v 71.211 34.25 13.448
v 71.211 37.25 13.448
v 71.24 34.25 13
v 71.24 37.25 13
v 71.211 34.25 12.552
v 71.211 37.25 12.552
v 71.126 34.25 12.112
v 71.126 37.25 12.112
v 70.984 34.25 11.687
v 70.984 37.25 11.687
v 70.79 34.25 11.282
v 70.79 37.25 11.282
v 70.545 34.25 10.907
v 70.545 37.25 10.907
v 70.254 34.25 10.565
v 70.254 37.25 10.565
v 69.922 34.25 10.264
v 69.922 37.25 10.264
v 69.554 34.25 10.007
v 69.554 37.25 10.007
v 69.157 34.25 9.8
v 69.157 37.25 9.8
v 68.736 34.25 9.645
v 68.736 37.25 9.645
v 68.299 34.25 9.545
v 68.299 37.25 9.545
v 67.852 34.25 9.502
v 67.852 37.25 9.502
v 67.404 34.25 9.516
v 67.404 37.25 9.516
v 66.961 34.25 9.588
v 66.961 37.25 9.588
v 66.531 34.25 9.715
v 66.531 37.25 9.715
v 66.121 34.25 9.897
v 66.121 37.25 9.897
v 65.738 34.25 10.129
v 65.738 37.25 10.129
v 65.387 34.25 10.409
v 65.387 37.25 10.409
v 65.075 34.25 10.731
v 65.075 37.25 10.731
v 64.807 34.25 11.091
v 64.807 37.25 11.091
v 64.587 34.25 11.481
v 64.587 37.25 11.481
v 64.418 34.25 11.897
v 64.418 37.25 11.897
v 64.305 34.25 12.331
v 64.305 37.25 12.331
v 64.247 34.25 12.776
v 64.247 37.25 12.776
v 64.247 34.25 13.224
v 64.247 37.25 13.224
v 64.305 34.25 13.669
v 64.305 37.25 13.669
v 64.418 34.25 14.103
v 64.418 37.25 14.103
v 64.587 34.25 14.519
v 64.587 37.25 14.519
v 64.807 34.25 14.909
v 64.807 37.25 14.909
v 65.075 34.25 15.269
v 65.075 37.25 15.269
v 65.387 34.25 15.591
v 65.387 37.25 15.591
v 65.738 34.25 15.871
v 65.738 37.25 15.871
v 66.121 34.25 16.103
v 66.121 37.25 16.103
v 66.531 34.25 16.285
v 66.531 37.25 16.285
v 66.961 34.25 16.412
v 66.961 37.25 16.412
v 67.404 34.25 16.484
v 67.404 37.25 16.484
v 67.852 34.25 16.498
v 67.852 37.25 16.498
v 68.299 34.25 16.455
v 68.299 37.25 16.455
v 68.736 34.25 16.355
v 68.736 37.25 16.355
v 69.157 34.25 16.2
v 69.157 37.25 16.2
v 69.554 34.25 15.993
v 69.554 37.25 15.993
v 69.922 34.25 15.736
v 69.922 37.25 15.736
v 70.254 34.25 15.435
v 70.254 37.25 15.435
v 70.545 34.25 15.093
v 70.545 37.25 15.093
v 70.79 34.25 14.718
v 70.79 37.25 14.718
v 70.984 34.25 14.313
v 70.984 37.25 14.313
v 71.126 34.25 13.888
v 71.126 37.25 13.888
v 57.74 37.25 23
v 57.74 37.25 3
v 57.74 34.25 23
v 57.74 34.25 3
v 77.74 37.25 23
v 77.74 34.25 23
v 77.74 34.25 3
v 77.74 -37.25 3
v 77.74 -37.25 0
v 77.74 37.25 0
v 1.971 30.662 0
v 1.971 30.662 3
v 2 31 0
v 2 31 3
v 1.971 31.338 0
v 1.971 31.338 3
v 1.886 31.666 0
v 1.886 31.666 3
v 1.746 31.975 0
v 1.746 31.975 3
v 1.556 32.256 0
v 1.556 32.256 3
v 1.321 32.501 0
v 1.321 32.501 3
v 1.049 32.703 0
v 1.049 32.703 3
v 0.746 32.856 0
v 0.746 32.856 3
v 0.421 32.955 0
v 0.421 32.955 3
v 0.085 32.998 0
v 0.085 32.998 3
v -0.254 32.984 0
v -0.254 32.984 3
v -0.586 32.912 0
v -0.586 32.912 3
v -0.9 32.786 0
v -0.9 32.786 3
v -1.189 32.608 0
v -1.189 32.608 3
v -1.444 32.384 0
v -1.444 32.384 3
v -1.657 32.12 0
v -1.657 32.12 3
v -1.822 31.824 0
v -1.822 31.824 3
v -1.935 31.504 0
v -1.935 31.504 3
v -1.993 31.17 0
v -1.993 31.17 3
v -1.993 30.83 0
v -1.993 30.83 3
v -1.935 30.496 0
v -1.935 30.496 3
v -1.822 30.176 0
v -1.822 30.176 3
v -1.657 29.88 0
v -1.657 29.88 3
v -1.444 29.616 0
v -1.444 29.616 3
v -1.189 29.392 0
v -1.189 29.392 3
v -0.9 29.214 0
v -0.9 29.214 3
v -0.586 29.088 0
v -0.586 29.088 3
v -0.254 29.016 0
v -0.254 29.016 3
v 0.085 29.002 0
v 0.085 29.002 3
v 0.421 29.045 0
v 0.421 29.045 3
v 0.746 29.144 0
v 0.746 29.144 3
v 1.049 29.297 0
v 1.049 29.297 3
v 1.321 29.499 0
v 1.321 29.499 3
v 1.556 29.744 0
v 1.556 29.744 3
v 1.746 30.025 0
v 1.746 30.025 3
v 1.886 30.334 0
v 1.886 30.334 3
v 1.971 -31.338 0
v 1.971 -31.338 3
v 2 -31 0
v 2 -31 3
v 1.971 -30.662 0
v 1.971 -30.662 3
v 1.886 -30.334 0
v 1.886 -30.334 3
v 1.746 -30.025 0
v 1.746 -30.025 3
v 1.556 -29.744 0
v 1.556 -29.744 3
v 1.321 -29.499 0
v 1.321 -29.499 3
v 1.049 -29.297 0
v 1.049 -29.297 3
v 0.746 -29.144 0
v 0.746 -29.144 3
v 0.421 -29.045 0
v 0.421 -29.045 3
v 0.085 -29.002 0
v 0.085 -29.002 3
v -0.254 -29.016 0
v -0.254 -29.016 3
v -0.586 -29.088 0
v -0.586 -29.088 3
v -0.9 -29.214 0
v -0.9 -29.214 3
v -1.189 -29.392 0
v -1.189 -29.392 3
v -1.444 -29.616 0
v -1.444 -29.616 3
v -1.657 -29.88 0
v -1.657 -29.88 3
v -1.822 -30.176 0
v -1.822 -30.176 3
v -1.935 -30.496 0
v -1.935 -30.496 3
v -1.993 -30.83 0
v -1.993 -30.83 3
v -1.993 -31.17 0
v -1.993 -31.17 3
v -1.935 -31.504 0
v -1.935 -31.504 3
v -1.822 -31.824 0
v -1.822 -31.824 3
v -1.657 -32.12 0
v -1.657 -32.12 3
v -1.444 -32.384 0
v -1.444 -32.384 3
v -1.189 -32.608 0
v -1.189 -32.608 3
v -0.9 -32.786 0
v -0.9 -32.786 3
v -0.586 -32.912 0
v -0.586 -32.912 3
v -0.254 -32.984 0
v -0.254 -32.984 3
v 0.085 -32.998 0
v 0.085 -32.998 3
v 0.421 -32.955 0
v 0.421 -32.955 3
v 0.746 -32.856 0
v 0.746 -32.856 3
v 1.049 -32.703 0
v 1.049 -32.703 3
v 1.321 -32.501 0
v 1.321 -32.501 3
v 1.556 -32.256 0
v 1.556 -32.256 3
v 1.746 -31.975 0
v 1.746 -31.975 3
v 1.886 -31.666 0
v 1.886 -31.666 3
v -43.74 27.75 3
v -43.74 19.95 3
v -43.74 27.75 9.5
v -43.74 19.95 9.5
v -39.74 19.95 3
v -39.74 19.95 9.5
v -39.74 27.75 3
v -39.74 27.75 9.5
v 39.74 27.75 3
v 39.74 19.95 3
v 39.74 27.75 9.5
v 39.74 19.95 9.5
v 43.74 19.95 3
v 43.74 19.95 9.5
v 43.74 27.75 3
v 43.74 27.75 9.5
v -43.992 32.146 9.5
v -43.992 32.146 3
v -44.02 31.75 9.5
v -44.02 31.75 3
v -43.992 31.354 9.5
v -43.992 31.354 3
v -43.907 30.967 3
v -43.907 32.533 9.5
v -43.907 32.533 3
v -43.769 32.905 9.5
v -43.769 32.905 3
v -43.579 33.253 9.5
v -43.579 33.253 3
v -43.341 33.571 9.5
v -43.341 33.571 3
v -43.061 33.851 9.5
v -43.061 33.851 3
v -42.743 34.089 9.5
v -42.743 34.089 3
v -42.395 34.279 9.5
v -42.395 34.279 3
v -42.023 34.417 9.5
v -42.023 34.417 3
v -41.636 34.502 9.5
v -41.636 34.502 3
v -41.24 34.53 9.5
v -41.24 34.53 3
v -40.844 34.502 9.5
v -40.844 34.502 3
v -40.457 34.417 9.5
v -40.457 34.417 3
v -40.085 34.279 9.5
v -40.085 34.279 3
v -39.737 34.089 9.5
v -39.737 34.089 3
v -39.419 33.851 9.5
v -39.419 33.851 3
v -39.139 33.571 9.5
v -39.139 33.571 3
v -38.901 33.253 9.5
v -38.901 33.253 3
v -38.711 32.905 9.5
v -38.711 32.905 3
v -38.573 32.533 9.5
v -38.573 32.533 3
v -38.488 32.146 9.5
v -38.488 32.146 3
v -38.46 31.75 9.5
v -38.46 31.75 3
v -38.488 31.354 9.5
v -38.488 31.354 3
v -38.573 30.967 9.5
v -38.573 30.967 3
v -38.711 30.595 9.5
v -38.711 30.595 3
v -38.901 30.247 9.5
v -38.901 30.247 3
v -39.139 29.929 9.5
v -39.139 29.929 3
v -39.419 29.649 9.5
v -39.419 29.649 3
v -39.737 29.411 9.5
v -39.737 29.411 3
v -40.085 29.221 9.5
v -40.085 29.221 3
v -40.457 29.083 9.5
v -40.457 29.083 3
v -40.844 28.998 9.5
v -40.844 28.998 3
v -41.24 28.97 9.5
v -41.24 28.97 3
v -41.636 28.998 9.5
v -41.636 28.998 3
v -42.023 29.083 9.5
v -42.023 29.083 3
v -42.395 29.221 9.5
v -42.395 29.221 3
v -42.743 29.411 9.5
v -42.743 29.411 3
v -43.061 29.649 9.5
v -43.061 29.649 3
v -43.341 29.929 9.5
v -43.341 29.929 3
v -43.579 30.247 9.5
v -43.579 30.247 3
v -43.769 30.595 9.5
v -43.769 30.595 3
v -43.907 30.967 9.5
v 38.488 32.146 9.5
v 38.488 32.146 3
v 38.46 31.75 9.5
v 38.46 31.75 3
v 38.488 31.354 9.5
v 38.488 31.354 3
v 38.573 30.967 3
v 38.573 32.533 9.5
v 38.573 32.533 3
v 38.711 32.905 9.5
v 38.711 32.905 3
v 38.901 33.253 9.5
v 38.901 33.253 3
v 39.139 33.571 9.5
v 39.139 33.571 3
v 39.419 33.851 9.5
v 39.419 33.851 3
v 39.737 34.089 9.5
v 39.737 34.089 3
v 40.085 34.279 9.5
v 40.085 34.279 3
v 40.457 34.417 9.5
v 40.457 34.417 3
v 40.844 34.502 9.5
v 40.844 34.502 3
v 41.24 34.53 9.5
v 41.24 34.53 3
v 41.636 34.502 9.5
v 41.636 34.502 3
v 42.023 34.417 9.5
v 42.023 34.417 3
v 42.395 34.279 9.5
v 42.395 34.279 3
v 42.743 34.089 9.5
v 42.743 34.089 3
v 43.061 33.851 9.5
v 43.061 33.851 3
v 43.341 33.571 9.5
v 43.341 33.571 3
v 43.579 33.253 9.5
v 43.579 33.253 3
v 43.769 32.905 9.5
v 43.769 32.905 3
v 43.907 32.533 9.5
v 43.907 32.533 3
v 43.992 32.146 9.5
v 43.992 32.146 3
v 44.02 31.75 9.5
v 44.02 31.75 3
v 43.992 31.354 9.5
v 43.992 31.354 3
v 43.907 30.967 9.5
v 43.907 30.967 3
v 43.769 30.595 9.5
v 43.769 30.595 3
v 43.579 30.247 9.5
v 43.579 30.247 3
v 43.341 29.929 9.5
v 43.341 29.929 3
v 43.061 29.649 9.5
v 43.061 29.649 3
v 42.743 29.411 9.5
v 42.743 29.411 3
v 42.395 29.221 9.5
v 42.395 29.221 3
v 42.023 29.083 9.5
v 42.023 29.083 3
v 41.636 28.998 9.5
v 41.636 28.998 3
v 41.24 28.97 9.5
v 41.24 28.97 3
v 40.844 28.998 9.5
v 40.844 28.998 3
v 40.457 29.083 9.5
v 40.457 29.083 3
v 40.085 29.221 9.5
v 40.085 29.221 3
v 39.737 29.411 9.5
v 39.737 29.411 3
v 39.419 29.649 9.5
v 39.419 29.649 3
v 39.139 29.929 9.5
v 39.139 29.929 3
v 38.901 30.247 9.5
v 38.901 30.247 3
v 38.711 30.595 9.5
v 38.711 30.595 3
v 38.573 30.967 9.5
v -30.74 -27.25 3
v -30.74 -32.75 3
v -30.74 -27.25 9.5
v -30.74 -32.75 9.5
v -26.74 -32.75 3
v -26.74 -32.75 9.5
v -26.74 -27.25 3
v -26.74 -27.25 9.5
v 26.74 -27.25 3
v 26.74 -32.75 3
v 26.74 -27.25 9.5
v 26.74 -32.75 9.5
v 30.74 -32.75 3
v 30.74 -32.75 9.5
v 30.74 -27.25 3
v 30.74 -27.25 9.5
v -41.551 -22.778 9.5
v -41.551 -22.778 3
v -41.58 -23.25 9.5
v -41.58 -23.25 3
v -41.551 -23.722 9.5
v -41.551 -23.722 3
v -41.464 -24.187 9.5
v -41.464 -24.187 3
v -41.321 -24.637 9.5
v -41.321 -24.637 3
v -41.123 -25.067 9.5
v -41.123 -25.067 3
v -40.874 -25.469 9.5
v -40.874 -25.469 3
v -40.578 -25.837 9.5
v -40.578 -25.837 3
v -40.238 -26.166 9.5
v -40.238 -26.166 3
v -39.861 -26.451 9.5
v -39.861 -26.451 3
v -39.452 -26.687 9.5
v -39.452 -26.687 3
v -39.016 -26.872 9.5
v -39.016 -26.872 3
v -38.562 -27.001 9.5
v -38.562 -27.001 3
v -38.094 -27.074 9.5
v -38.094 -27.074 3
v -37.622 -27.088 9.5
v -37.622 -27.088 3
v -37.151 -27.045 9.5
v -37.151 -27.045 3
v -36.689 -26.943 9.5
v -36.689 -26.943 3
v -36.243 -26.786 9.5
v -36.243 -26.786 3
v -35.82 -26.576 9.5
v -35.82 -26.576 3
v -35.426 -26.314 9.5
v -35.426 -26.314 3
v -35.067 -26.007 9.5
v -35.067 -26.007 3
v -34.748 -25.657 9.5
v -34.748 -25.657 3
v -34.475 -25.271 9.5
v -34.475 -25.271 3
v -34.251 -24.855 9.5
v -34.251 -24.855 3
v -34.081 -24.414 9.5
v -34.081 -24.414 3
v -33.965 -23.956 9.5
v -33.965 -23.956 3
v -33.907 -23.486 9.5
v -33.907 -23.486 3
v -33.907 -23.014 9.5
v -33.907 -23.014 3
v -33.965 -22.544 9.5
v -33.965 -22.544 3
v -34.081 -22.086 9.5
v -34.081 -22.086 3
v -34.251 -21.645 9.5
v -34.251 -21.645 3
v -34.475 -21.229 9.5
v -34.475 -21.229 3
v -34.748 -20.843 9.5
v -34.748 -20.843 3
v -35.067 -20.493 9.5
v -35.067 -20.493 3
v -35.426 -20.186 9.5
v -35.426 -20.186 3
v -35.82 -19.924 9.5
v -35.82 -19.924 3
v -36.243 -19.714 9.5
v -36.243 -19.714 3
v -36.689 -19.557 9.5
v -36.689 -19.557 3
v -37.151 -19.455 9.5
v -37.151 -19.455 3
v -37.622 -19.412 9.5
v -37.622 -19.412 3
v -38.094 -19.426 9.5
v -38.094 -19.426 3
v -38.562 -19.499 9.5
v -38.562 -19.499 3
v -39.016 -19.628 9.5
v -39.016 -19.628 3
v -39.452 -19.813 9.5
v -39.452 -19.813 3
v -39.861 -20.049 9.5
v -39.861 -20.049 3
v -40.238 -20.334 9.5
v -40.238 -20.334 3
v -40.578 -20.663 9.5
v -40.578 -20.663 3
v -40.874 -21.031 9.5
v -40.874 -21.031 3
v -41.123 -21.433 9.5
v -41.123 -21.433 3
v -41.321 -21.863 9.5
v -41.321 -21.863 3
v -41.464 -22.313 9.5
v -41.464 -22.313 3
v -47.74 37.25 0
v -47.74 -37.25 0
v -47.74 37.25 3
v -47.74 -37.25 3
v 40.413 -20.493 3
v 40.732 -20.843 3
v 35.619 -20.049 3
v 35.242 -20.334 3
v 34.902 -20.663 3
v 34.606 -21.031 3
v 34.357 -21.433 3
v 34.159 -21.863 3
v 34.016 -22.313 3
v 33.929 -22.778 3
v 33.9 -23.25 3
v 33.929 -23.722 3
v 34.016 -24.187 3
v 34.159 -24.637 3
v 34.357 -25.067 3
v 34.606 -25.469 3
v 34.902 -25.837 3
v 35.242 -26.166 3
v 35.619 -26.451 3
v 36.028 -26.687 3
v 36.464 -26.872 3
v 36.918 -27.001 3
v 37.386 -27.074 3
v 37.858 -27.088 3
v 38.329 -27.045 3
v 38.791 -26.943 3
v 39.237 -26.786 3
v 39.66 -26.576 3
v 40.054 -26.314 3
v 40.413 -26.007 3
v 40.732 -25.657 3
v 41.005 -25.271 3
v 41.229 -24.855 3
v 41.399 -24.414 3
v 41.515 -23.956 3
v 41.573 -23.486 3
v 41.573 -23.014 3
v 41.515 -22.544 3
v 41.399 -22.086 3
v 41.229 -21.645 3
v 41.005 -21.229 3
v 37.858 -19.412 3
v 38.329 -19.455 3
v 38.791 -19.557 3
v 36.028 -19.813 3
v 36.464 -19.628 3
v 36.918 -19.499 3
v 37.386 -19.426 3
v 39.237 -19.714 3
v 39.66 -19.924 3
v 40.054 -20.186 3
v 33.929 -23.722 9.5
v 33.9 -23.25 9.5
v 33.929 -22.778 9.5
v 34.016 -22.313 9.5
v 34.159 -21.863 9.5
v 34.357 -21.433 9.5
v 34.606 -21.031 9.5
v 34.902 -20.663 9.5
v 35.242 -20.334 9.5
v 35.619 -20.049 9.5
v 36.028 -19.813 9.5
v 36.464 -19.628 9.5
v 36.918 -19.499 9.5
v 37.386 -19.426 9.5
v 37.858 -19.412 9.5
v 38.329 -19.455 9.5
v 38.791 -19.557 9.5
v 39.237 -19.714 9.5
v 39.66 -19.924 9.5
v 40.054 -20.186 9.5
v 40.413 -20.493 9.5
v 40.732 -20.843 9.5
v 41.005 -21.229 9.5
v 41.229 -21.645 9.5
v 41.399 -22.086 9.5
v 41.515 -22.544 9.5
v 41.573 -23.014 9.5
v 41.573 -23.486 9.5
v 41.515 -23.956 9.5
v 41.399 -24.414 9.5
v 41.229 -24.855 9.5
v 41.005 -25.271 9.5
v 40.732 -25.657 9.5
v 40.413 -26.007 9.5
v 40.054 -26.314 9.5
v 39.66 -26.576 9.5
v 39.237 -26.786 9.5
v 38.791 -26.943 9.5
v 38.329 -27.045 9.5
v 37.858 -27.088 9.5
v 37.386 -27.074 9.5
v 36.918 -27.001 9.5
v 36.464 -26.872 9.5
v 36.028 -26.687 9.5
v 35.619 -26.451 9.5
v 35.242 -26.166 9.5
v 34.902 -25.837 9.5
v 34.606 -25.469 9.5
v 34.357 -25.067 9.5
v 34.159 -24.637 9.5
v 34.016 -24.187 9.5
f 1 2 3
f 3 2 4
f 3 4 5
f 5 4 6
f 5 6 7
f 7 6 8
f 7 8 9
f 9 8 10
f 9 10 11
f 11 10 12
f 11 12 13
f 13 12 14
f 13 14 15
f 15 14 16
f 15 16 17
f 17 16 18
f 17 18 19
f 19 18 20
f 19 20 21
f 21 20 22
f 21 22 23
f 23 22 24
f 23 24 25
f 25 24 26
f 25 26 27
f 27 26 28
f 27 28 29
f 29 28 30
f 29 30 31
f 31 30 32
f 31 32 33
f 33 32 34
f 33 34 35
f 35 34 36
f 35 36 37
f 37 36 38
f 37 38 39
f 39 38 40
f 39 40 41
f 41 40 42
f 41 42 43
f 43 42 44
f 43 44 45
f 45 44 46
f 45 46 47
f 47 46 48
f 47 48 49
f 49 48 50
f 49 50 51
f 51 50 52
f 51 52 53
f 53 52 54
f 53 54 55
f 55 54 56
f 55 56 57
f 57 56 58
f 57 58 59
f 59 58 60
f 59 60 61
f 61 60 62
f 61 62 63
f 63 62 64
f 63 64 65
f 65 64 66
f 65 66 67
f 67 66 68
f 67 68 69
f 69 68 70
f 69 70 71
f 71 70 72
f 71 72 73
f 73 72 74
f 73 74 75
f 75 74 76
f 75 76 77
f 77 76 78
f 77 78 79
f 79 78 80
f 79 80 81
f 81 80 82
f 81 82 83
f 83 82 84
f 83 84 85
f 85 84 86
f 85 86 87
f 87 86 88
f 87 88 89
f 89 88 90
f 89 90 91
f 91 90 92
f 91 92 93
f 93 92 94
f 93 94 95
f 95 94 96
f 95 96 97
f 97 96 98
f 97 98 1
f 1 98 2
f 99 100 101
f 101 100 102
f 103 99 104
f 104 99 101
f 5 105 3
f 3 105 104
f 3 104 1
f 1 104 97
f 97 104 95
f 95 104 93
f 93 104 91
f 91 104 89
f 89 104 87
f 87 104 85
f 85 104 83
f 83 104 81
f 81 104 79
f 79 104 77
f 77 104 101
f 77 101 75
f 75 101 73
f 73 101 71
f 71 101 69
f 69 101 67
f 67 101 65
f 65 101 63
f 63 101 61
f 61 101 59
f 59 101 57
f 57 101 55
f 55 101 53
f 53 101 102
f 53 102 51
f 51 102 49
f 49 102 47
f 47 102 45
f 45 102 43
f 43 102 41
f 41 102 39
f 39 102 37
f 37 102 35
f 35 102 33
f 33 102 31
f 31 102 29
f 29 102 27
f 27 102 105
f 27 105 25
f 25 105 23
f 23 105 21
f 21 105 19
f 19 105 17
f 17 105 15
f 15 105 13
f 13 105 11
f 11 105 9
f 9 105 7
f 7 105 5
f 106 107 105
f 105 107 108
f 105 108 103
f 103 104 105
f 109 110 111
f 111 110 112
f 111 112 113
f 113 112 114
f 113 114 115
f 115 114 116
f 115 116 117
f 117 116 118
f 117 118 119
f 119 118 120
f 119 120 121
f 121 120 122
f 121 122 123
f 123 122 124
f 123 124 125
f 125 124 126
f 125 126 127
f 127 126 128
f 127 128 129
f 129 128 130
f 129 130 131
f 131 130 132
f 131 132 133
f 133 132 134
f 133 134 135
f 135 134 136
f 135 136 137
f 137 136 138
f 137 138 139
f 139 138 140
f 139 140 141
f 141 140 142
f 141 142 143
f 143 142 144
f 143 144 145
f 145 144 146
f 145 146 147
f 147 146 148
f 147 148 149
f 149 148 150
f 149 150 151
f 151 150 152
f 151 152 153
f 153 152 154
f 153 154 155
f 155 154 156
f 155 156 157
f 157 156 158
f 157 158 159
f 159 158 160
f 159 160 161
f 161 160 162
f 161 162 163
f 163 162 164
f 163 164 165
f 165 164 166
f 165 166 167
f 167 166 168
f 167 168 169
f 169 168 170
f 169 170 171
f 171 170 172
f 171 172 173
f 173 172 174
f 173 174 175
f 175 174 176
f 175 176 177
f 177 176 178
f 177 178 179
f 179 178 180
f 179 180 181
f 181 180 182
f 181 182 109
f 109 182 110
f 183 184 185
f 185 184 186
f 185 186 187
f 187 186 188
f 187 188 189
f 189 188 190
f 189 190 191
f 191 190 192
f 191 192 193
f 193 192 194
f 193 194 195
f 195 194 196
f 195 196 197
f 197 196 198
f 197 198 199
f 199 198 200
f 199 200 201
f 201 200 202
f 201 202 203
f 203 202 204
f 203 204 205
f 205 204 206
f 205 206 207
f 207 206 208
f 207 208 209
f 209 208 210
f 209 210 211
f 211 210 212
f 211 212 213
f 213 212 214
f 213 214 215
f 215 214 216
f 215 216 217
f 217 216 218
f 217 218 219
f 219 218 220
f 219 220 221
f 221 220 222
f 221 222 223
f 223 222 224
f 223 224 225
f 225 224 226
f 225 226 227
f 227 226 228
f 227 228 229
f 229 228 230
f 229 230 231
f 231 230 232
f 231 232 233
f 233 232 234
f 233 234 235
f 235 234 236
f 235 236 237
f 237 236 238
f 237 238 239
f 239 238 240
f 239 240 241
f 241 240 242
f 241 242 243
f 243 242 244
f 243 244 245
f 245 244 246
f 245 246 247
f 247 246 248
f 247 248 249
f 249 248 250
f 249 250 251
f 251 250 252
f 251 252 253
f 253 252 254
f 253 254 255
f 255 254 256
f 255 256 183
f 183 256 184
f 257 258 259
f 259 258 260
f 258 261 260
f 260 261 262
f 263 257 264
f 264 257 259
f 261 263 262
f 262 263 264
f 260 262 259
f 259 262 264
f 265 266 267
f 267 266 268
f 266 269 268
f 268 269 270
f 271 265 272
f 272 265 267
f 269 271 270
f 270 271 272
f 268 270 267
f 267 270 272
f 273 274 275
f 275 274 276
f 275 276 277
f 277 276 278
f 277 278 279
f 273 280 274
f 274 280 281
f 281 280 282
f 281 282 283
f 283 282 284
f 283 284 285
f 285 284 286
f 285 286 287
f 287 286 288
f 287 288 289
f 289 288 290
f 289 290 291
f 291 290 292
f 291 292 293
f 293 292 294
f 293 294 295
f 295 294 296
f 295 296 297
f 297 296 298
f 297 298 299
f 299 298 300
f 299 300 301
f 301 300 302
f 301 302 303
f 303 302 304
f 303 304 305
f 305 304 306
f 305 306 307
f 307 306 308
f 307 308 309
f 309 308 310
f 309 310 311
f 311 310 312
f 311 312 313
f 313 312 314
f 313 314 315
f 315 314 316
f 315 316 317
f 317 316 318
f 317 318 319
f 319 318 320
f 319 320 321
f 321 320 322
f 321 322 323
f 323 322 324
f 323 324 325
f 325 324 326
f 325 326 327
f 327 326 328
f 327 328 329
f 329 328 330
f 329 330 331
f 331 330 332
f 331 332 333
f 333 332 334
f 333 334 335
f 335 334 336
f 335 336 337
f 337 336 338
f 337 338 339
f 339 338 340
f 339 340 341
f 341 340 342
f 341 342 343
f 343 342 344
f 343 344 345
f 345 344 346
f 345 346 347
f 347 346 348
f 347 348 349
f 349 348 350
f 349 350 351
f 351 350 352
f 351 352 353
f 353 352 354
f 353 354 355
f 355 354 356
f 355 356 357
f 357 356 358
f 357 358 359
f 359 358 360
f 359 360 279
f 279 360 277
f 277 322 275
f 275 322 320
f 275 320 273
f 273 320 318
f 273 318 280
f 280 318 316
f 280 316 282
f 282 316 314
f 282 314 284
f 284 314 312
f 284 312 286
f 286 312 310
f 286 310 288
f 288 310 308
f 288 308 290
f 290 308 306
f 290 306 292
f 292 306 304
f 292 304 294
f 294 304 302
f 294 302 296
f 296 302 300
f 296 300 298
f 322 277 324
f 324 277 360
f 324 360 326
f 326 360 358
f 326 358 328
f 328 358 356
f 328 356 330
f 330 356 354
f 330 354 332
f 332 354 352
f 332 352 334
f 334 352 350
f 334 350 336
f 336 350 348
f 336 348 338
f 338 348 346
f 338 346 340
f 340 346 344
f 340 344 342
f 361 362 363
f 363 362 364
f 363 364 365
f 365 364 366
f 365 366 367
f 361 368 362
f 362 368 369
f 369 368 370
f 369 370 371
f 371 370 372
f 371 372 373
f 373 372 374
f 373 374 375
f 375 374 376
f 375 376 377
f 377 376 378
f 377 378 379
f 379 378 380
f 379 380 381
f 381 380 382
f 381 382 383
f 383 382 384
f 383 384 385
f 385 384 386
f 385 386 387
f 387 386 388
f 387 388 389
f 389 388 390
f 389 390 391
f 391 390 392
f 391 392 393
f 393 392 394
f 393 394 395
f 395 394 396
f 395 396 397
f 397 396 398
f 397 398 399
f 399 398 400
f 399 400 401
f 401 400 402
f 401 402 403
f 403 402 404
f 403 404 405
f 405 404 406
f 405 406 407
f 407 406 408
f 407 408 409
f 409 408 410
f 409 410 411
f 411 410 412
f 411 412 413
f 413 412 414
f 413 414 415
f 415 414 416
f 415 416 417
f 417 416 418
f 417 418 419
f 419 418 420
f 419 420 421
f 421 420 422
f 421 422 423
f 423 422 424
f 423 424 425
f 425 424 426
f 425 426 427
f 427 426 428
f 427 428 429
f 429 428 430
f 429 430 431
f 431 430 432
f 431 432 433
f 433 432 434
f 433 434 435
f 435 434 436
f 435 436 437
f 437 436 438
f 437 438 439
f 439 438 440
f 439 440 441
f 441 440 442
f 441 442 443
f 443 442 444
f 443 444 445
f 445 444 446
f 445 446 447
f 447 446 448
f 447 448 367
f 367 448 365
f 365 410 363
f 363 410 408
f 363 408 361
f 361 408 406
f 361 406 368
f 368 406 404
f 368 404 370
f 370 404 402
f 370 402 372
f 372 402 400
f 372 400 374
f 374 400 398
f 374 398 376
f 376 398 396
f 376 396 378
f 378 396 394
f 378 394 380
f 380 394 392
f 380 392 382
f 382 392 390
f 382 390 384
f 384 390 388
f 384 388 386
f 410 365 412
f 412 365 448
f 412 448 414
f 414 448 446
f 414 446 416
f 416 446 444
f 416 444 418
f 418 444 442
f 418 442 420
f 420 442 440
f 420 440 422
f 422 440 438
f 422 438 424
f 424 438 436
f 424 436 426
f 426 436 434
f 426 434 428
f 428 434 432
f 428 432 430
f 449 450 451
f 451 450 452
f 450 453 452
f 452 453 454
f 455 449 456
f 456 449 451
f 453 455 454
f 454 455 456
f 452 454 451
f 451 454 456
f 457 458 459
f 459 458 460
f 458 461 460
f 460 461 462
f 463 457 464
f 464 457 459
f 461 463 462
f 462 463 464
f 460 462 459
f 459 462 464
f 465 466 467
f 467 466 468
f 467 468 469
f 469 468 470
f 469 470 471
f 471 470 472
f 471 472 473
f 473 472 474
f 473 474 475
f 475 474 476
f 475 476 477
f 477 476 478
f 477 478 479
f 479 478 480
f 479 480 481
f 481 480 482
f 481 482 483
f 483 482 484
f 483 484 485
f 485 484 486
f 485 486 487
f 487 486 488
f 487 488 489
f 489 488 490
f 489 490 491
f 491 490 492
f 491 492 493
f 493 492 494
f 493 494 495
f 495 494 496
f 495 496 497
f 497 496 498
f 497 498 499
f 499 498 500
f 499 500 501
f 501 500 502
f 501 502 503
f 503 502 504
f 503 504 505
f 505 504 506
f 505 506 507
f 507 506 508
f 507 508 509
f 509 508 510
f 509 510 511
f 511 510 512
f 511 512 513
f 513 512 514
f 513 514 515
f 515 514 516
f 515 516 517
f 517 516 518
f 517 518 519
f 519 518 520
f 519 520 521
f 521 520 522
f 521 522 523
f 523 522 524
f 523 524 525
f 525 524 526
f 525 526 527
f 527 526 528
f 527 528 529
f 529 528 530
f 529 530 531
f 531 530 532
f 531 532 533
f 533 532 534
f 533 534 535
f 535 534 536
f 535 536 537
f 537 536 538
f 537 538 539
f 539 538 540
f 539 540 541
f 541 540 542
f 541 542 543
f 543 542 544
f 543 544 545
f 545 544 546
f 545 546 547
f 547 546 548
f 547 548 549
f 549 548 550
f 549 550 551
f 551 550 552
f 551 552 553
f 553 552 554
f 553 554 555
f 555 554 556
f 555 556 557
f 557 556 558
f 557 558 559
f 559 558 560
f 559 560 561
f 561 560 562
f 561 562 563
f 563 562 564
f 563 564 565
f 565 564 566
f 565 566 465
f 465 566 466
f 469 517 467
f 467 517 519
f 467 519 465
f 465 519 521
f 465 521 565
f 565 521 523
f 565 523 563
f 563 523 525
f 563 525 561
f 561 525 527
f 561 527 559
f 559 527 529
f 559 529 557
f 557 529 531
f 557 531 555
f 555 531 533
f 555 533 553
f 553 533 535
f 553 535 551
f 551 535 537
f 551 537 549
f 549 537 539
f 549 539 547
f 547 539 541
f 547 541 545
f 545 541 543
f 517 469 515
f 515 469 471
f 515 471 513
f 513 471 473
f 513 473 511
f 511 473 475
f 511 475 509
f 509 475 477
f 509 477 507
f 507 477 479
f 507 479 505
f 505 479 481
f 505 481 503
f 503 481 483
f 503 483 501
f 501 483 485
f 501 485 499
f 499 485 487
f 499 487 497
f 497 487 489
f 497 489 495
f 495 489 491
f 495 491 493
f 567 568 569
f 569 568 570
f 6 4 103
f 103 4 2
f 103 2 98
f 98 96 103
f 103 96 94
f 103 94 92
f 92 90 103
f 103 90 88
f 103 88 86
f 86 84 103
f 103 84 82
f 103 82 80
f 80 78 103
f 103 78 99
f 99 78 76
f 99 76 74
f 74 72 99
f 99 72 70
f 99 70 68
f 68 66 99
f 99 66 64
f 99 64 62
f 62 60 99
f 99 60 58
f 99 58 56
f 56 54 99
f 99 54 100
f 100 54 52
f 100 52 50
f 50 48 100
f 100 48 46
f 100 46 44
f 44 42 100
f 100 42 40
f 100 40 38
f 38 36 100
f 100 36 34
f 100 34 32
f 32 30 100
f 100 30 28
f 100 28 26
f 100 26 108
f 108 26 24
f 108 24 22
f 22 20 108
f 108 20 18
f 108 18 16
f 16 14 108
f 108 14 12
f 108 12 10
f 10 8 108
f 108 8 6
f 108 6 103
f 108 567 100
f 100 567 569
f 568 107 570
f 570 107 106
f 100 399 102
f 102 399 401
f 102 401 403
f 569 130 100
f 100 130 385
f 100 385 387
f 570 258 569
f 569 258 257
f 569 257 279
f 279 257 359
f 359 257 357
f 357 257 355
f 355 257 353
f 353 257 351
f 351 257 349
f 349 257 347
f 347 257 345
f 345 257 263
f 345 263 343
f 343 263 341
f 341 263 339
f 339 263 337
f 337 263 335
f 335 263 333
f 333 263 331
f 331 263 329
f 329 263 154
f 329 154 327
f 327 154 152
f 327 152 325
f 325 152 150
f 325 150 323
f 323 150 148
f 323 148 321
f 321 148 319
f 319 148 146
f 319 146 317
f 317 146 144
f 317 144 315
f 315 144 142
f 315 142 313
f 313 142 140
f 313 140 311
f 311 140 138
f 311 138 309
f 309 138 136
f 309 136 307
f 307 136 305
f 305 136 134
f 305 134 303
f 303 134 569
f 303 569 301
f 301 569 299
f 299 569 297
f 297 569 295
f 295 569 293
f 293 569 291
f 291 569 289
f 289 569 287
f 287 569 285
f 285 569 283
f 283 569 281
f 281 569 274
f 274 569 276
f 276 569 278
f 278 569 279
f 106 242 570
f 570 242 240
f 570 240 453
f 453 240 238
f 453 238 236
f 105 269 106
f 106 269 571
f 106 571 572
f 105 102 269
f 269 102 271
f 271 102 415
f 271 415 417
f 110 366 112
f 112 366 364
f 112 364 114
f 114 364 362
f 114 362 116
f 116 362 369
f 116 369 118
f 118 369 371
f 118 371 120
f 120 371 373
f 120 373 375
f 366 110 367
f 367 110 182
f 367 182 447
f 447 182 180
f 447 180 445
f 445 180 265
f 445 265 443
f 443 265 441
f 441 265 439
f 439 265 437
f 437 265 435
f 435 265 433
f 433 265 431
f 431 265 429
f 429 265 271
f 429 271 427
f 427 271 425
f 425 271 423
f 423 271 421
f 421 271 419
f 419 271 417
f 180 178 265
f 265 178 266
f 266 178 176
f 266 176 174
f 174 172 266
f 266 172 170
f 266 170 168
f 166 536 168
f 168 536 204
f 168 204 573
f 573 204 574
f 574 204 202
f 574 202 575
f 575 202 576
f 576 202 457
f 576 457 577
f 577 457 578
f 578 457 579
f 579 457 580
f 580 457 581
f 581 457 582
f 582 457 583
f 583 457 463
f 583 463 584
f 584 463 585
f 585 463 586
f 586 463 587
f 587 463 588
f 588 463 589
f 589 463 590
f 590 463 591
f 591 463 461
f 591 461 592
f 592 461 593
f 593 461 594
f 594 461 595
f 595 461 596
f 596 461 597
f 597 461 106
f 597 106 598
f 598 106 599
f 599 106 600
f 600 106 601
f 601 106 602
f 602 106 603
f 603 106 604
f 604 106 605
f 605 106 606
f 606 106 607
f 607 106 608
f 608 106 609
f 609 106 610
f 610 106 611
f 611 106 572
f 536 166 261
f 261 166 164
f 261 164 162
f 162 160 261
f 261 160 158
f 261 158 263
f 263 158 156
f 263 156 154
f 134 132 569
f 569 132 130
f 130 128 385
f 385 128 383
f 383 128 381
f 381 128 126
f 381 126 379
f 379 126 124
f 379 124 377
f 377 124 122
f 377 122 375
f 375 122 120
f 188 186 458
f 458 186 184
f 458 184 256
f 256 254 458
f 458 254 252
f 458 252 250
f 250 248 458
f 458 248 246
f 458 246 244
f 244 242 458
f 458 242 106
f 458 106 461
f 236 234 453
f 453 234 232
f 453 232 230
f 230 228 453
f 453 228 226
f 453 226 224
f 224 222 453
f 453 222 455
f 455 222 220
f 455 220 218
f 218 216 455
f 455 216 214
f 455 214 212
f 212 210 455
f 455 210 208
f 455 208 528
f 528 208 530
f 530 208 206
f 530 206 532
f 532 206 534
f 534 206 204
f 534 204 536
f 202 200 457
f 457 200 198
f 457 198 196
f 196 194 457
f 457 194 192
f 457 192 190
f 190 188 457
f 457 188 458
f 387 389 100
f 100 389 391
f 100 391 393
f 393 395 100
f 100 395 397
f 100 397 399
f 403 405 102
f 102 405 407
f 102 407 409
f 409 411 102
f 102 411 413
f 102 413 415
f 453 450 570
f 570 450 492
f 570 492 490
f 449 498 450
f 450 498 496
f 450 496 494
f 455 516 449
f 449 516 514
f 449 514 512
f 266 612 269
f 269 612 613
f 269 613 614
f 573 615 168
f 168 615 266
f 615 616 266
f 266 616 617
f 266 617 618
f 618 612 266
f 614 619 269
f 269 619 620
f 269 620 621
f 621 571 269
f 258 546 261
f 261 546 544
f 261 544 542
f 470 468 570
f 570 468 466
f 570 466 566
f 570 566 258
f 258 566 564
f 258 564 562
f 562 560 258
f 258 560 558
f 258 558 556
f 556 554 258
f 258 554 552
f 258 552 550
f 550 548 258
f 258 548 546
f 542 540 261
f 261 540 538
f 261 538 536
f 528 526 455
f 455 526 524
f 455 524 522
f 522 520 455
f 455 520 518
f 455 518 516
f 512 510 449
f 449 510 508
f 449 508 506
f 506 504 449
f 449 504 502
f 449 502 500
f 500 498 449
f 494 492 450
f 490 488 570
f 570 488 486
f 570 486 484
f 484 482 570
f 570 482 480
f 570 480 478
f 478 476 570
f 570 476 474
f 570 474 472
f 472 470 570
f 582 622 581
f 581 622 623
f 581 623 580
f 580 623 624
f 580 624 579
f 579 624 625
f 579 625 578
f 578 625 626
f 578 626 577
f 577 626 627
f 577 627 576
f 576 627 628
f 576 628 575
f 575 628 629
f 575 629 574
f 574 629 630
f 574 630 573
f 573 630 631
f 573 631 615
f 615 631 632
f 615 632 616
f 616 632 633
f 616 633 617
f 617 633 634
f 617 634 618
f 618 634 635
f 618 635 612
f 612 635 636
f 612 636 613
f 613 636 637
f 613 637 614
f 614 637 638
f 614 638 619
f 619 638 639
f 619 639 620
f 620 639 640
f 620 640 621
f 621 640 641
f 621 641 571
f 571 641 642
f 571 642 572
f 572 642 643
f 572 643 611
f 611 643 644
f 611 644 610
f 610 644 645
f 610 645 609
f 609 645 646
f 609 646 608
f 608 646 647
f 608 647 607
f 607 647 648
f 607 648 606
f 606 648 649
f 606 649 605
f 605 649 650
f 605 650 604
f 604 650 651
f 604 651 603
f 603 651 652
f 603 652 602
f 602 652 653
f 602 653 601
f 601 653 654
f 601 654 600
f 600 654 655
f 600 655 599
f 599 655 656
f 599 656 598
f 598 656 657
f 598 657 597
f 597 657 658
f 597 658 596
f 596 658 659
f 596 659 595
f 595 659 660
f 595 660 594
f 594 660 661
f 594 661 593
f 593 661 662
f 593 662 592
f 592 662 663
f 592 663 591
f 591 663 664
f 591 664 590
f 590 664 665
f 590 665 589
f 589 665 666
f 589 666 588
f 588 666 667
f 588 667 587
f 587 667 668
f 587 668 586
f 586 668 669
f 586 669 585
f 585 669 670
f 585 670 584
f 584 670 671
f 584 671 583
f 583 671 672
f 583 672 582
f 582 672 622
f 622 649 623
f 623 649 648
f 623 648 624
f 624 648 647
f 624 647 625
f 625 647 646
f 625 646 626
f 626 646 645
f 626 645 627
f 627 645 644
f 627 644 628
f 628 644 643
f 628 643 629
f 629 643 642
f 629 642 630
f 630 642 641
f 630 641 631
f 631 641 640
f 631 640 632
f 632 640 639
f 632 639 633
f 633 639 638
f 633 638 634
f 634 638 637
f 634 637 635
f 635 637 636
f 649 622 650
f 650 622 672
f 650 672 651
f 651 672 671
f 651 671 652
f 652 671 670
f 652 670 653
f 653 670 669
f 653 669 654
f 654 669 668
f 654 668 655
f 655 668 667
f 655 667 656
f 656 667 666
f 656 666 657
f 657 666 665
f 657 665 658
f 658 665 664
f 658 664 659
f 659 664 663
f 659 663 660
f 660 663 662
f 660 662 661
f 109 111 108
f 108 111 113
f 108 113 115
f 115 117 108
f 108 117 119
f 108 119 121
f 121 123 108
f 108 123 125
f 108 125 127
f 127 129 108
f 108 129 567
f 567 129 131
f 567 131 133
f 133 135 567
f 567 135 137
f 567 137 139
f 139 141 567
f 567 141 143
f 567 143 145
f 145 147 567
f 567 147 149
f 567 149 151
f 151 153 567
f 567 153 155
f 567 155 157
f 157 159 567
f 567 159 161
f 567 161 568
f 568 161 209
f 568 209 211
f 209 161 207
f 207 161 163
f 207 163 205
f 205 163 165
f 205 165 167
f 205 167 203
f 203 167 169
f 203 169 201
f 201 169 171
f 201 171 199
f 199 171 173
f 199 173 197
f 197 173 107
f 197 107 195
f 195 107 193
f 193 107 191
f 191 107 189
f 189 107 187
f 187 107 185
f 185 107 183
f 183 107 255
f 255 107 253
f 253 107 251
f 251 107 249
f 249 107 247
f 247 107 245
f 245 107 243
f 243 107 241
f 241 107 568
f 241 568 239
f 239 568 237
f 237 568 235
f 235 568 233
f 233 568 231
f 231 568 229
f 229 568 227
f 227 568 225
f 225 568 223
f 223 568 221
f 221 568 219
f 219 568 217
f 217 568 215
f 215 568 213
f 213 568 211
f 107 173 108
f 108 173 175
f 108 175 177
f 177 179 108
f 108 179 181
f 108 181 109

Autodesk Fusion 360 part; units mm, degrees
sketch "Sketch1" plane through (0, 0, 0) normal (0, 0, 1) x (1, 0, 0)
  line L0 (-47.74, 37.25) -> (47.74, 37.25)
  line L1 (47.74, 37.25) -> (47.74, -37.25)
  line L2 (47.74, -37.25) -> (-47.74, -37.25)
  line L3 (-47.74, -37.25) -> (-47.74, 37.25)
  line L4 (-47.74, 37.25) -> (47.74, -37.25) construction
  line L5 (47.74, 37.25) -> (-47.74, -37.25) construction
  circle A0 centre (41.24, 31.75) radius 2.78
  circle A1 centre (-41.24, 31.75) radius 2.78
  circle A2 centre (37.74, -23.25) radius 3.84
  circle A3 centre (-37.74, -23.25) radius 3.84
  line L6 (-30.74, -27.25) -> (-26.74, -27.25)
  line L7 (-26.74, -27.25) -> (-26.74, -33.25)
  line L8 (-26.74, -33.25) -> (-30.74, -33.25)
  line L9 (-30.74, -33.25) -> (-30.74, -27.25)
  line L10 (26.74, -27.25) -> (30.74, -27.25)
  line L11 (30.74, -27.25) -> (30.74, -33.25)
  line L12 (30.74, -33.25) -> (26.74, -33.25)
  line L13 (26.74, -33.25) -> (26.74, -27.25)
  line L14 (39.74, 27.75) -> (43.74, 27.75)
  line L15 (43.74, 27.75) -> (43.74, 19.95)
  line L16 (43.74, 19.95) -> (39.74, 19.95)
  line L17 (39.74, 19.95) -> (39.74, 27.75)
  line L18 (-43.74, 27.75) -> (-39.74, 27.75)
  line L19 (-39.74, 27.75) -> (-39.74, 19.95)
  line L20 (-39.74, 19.95) -> (-43.74, 19.95)
  line L21 (-43.74, 19.95) -> (-43.74, 27.75)
  point P0 (40, 20)
  dimension "d2" = 95.48
  dimension "d3" = 74.5
  dimension "d4" = 5.56
  dimension "d5" = 5.56
  dimension "d6" = 7.68
  dimension "d7" = 7.68
  dimension "d8" = 5.5
  dimension "d9" = 6.5
  dimension "d10" = 6.5
  dimension "d11" = 5.5
  dimension "d12" = 14
  dimension "d13" = 10
  dimension "d14" = 10
  dimension "d15" = 14
  dimension "d22" = 4
  dimension "d23" = 6
  dimension "d24" = 4
  dimension "d25" = 7
  dimension "d26" = 4
  dimension "d27" = 6
  dimension "d28" = 7
  dimension "d29" = 4
  dimension "d30" = 4
  dimension "d31" = 7.8
  dimension "d32" = 4
  dimension "d33" = 4
  dimension "d34" = 4
  dimension "d35" = 7.8
  dimension "d36" = 4
  dimension "d37" = 4
extrude "Extrude1" add sketch "Sketch1" along normal blind 9.5 contours A0 | A1 | A2 | A3 | L6 L7 L8 L9 | L10 L11 L12 L13 | L14 L15 L16 L17 | L18 L19 L20 L21 makes body 1 at (41.5609, -23.6323, 6.3333) makes body 2 at (-33.9191, -23.6323, 6.3333) makes body 3 at (30.74, -29.25, 3.1667) makes body 4 at (-26.74, -29.25, 3.1667) makes body 5 at (44.0062, 31.4732, 6.3333) makes body 6 at (-38.4738, 31.4732, 6.3333) makes body 7 at (43.74, 25.15, 3.1667) makes body 8 at (-39.74, 25.15, 6.3333)
extrude "Extrude2" add sketch "Sketch1" along normal blind 3 bodies 1 2 3 4 5 6 7 8
sketch "Sketch6" plane through (0, 0, 3) normal (0, 0, 1) x (-1, 0, 0)
  circle A0 centre (41.24, -31.75) radius 2.78
  circle A1 centre (37.74, 23.25) radius 3.84
  line L0 (26.74, 33.25) -> (30.74, 33.25)
  line L1 (30.74, 33.25) -> (30.74, 27.25)
  line L2 (30.74, 27.25) -> (26.74, 27.25)
  line L3 (26.74, 27.25) -> (26.74, 33.25)
  circle A2 centre (-37.74, 23.25) radius 3.84
  line L4 (-30.74, 33.25) -> (-26.74, 33.25)
  line L5 (-26.74, 33.25) -> (-26.74, 27.25)
  line L6 (-26.74, 27.25) -> (-30.74, 27.25)
  line L7 (-30.74, 27.25) -> (-30.74, 33.25)
  line L8 (-43.74, -19.95) -> (-39.74, -19.95)
  line L9 (-39.74, -19.95) -> (-39.74, -27.75)
  line L10 (-39.74, -27.75) -> (-43.74, -27.75)
  line L11 (-43.74, -27.75) -> (-43.74, -19.95)
  circle A3 centre (-41.24, -31.75) radius 2.78
  line L12 (39.74, -19.95) -> (43.74, -19.95)
  line L13 (43.74, -19.95) -> (43.74, -27.75)
  line L14 (43.74, -27.75) -> (39.74, -27.75)
  line L15 (39.74, -27.75) -> (39.74, -19.95)
  line L16 (47.74, 37.25) -> (-47.74, 37.25)
  line L17 (-47.74, 37.25) -> (-47.74, -37.25)
  line L18 (-47.74, -37.25) -> (47.74, -37.25)
  line L19 (47.74, -37.25) -> (47.74, 37.25)
  line L20 (-145.7882, -27) -> (145.7882, -27)
  line L21 (145.7882, -27) -> (145.7882, 27)
  line L22 (145.7882, 27) -> (-145.7882, 27)
  line L23 (-145.7882, 27) -> (-145.7882, -27)
  line L24 (-145.7882, -27) -> (145.7882, 27) construction
  line L25 (145.7882, -27) -> (-145.7882, 27) construction
  circle A4 centre (0, -31) radius 2
  line L26 (-20, 0) -> (-2.5, 0)
  circle A5 centre (0, 31) radius 2
  point P0 (0, -31)
  dimension "d42" = 54
  dimension "d44" = 4
  dimension "d47" = 4
  dimension "d50" = 31
move_face "OffsetFaces1" offset -0.5 2 faces at (-28.0733, -33.25, 5.1667) (29.4067, -33.25, 5.1667) on bodies 1
extrude "Extrude3" cut sketch "Sketch6" against normal blind 5 contours A4 | A5 bodies 1
extrude "Extrude5" add 1 faces at (47.74, 12.4167, 1) along direction (1, 0, 0) blind 30 on bodies 1 bodies 1
sketch "Sketch11" plane through (0, 37.25, 0) normal (0, 1, 0) x (-1, 0, 0)
  line L0 (-77.74, 0) -> (47.74, 0)
  line L1 (47.74, 0) -> (47.74, 3)
  line L2 (47.74, 3) -> (-77.74, 3)
  line L3 (-77.74, 3) -> (-77.74, 0)
  line L4 (-77.74, 3) -> (-57.74, 3)
  line L5 (-57.74, 3) -> (-57.74, 23)
  line L6 (-57.74, 23) -> (-77.74, 23)
  line L7 (-77.74, 23) -> (-77.74, 3)
  circle A0 centre (-67.74, 13) radius 3.5
  dimension "d56" = 20
  dimension "d57" = 20
  dimension "d58" = 7
  dimension "d59" = 10
  dimension "d60" = 10
extrude "Extrude6" add sketch "Sketch11" against normal blind 3 contours L2 L4 L5 L6 L7 bodies 1
